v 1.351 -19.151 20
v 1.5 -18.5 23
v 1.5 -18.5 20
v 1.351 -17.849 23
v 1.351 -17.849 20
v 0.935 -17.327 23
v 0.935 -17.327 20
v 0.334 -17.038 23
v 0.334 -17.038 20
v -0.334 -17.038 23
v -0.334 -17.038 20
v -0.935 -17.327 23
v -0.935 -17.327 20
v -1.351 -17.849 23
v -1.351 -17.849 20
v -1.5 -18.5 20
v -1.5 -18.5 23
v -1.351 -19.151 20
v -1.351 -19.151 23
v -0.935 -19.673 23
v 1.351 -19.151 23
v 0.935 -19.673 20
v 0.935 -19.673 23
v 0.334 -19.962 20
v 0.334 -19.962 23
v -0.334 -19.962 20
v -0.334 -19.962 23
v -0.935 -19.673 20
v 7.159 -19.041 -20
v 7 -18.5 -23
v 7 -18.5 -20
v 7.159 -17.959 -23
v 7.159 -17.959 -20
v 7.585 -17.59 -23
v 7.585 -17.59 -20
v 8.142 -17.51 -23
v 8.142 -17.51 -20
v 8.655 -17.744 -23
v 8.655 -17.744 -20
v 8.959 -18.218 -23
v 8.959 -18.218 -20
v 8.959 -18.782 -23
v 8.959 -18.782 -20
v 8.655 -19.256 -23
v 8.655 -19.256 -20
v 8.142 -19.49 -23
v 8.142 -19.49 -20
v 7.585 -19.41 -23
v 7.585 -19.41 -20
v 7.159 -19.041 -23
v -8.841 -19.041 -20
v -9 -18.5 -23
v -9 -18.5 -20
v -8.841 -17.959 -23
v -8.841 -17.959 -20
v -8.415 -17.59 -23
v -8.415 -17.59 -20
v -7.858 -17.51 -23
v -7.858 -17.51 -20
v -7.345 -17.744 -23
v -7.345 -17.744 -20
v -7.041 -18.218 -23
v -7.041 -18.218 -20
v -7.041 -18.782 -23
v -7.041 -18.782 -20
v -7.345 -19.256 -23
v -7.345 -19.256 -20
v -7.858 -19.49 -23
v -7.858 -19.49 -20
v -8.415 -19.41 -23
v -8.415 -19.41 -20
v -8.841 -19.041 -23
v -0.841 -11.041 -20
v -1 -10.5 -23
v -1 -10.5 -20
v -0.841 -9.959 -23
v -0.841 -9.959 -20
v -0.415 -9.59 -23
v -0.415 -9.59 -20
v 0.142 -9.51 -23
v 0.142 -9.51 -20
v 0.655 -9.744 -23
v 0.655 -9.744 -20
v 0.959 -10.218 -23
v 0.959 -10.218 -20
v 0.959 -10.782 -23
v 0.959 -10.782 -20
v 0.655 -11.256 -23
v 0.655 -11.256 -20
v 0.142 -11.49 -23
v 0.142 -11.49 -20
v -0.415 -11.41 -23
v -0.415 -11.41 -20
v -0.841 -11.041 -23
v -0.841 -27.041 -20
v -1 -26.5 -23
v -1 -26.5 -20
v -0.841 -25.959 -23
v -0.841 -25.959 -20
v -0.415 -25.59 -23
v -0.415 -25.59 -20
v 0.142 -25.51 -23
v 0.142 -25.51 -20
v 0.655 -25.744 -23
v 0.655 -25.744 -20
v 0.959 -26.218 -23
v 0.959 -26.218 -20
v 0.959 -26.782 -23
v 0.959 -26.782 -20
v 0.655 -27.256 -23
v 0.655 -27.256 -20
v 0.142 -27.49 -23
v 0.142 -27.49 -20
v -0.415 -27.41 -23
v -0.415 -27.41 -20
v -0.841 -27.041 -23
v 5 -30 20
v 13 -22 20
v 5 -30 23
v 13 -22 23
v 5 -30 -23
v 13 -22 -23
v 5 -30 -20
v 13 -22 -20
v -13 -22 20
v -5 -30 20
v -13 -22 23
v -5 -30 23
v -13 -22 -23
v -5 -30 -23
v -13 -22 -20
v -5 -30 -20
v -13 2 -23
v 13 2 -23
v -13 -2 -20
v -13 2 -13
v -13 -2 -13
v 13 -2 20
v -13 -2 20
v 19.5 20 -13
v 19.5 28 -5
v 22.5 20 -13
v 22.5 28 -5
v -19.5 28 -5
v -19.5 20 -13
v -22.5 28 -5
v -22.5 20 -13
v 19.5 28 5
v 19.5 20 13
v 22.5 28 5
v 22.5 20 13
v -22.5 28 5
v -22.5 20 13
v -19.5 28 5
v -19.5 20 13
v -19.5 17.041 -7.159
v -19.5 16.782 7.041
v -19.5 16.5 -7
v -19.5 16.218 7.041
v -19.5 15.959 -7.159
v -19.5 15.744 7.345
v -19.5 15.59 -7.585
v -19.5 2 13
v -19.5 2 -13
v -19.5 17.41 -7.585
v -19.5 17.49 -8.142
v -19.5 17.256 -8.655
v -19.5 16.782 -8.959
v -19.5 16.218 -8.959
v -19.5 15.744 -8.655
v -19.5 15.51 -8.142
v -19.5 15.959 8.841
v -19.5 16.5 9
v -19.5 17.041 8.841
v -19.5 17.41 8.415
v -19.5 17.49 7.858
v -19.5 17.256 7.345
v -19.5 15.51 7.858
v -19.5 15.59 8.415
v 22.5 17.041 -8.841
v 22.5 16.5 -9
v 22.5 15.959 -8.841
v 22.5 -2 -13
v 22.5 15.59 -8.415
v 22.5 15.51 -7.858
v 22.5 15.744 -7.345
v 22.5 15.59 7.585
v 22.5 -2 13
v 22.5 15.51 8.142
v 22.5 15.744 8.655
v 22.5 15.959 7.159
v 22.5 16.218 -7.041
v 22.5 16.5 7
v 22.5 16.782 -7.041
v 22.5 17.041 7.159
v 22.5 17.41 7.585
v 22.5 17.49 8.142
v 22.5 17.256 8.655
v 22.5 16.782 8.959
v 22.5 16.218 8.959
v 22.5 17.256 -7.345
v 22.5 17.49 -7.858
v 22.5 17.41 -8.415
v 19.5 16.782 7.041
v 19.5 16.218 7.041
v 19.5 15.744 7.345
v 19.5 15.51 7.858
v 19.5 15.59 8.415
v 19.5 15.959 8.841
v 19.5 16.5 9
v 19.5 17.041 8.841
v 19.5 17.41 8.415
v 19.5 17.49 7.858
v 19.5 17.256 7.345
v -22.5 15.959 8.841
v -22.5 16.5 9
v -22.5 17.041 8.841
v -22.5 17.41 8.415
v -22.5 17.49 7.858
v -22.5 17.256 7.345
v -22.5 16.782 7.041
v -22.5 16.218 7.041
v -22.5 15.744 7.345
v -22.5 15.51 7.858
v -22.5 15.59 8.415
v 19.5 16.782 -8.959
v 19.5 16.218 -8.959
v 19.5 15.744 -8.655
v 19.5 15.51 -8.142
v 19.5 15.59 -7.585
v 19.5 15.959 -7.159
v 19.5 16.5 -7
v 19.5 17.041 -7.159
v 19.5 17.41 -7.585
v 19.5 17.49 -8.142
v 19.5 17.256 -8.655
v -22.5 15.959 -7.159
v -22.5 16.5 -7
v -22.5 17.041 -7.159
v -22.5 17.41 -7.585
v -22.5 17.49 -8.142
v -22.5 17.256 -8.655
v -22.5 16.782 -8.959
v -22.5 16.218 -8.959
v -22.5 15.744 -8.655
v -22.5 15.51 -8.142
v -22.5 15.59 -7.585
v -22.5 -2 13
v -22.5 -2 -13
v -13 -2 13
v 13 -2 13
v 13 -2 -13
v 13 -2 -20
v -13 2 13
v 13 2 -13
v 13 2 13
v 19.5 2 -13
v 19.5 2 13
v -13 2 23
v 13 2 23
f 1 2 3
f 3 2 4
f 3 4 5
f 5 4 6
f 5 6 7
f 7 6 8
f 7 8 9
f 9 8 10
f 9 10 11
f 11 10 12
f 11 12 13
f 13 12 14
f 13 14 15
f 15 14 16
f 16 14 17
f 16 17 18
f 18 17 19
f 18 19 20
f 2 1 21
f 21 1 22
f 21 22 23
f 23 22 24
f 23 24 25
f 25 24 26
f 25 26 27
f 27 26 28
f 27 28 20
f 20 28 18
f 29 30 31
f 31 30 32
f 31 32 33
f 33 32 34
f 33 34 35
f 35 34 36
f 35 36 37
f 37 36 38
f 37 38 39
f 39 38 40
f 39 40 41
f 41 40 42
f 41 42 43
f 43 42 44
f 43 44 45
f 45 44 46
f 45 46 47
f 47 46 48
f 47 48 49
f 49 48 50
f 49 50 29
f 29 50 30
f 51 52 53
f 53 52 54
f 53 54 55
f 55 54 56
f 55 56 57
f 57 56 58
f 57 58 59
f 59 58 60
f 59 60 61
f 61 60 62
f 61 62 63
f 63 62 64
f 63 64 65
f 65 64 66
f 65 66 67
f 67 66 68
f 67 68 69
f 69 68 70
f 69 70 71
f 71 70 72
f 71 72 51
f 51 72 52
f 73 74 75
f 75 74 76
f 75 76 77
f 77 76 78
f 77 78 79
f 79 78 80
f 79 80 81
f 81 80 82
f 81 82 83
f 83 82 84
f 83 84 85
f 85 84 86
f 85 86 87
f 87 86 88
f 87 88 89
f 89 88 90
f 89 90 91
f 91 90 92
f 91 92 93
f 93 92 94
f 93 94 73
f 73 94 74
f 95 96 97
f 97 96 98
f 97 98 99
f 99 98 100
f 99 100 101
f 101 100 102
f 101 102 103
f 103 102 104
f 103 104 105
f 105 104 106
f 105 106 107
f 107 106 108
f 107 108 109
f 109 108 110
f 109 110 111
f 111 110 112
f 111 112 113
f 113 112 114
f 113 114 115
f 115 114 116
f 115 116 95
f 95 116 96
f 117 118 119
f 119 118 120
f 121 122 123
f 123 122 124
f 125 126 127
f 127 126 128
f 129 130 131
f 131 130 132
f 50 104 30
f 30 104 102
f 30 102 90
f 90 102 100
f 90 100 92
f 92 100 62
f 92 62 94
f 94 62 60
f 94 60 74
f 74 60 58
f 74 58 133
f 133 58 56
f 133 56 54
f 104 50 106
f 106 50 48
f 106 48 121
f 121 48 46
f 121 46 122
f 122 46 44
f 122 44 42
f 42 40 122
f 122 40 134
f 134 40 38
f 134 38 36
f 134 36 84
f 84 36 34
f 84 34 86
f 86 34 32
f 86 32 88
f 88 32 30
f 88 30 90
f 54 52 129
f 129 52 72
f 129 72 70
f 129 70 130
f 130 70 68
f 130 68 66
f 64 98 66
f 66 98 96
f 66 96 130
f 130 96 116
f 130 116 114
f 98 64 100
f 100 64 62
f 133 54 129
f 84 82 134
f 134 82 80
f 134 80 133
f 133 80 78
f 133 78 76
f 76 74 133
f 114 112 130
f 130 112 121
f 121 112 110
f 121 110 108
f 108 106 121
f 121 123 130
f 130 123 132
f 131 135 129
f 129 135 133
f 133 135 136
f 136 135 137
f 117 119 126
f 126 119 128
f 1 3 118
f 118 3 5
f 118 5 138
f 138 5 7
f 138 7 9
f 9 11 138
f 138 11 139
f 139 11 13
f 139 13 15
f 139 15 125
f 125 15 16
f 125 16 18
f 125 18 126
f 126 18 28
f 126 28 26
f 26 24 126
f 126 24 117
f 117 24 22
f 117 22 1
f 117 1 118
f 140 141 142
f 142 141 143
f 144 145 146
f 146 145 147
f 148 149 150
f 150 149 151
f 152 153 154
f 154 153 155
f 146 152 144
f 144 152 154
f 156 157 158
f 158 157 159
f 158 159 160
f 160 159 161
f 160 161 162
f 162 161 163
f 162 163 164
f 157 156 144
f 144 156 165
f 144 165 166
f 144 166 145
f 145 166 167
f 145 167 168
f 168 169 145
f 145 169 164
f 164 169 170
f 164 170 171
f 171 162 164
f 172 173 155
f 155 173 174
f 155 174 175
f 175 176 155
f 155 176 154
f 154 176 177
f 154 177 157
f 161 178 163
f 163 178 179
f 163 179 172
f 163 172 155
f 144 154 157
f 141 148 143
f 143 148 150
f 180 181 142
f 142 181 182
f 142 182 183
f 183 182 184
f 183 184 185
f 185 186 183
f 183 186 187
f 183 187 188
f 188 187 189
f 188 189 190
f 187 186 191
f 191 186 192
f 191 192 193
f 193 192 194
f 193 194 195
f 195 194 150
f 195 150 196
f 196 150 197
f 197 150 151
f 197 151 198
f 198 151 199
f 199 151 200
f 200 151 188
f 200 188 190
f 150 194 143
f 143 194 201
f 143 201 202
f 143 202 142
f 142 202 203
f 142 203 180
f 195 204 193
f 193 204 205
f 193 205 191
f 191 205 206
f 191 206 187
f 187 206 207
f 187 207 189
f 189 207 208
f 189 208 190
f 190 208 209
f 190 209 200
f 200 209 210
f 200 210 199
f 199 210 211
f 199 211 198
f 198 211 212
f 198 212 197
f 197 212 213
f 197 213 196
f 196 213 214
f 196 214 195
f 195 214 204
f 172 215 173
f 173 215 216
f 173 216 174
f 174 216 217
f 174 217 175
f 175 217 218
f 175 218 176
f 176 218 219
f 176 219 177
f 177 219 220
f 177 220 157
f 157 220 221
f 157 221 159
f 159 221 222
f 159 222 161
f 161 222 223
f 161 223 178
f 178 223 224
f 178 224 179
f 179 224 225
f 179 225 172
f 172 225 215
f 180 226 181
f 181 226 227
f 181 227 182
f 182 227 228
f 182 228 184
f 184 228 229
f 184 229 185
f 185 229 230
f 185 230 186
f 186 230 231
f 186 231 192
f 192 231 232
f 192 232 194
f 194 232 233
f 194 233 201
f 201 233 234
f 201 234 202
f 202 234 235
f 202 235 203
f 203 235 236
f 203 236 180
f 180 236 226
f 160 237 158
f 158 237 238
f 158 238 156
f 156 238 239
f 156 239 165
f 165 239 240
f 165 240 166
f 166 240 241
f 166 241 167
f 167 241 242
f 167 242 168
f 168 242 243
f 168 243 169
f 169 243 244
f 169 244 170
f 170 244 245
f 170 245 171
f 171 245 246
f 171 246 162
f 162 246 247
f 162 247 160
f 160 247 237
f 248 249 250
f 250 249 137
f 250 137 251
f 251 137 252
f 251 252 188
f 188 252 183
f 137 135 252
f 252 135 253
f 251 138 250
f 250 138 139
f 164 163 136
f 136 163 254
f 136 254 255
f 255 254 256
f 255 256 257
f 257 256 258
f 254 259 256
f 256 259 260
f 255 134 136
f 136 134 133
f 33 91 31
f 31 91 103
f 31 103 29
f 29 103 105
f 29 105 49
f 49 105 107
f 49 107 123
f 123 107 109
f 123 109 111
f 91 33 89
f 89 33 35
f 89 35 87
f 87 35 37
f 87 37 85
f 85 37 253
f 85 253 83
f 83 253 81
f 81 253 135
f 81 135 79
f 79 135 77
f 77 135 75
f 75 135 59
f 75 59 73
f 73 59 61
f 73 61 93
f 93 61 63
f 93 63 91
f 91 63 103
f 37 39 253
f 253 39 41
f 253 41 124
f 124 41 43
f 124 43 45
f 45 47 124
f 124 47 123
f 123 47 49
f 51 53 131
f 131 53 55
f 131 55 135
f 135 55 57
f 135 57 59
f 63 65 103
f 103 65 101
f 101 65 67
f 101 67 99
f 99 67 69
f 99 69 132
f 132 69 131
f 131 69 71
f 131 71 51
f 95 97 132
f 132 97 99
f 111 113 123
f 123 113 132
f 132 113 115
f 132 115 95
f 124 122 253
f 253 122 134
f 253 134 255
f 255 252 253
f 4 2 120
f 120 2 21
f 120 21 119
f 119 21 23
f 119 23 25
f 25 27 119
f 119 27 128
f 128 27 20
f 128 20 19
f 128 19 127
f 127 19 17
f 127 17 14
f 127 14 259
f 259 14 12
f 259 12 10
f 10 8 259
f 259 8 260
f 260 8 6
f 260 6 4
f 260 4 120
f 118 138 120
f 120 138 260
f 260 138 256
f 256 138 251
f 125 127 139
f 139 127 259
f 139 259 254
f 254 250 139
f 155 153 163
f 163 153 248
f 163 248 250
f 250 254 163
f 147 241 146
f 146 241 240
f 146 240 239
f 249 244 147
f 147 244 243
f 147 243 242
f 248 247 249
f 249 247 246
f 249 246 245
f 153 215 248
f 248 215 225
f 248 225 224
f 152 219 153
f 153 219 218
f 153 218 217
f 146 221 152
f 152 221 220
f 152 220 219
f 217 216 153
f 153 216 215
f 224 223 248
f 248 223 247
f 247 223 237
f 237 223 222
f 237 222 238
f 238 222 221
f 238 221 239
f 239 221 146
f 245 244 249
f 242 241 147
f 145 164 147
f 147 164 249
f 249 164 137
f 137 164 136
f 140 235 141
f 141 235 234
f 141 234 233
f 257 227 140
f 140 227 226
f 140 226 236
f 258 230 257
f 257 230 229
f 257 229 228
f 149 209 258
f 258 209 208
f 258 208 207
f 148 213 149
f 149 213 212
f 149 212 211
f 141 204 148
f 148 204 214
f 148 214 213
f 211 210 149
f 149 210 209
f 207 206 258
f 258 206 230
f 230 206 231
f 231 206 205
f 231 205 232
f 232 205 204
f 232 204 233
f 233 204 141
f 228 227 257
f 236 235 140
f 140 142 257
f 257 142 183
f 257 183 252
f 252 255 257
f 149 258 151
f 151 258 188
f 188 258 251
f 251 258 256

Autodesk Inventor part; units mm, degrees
ref_plane "YZ Plane" through (0, 0, 0) normal (1, 0, 0) x (0, 1, 0)
ref_plane "XZ Plane" through (0, 0, 0) normal (0, 1, 0) x (-1, 0, 0)
ref_plane "XY Plane" through (0, 0, 0) normal (0, 0, 1) x (1, 0, 0)
sketch "Sketch1" plane through (0, 0, 0) normal (0, 1, 0) x (-1, 0, 0)
  line L0 (22.5, 13) -> (-22.5, 13)
  line L1 (-22.5, 13) -> (-22.5, -13)
  line L2 (-22.5, -13) -> (22.5, -13)
  line L3 (22.5, -13) -> (22.5, 13)
  line L4 (13, 23) -> (-13, 23)
  line L5 (-13, 23) -> (-13, -23)
  line L6 (-13, -23) -> (13, -23)
  line L7 (13, -23) -> (13, 23)
  line L8 (13, -23) -> (-13, 23) construction
  line L9 (13, 23) -> (-13, -23) construction
  line L10 (22.5, -13) -> (-22.5, 13) construction
  line L11 (22.5, 13) -> (-22.5, -13) construction
  line L12 (13, -23) -> (-13, -23)
  line L13 (-13, -23) -> (-13, -20)
  line L14 (-13, -20) -> (13, -20)
  line L15 (13, -20) -> (13, -23)
  line L16 (13, 23) -> (-13, 23)
  line L17 (-13, 23) -> (-13, 20)
  line L18 (-13, 20) -> (13, 20)
  line L19 (13, 20) -> (13, 23)
  line L20 (22.5, 13) -> (19.5, 13)
  line L21 (19.5, 13) -> (19.5, -13)
  line L22 (19.5, -13) -> (22.5, -13)
  line L23 (22.5, -13) -> (22.5, 13)
  line L24 (-22.5, 13) -> (-19.5, 13)
  line L25 (-19.5, 13) -> (-19.5, -13)
  line L26 (-19.5, -13) -> (-22.5, -13)
  line L27 (-22.5, -13) -> (-22.5, 13)
  point P0 (0, 0)
  point P1 (0, 0)
  point P2 (0, 0)
  point P3 (-19.5, 13)
  point P4 (13, 20)
  point P5 (13, 13)
  point P6 (-13, 13)
  point P7 (-13, -13)
  point P8 (13, -13)
  dimension "d0" = 45
  dimension "d1" = 46
  dimension "d2" = 26
  dimension "d3" = 26
  dimension "d4" = 3
  dimension "d5" = 3
  dimension "d6" = 3
  dimension "d7" = 3
extrude "Extrusion1" add sketch "Sketch1" along normal blind 28 contours L3 L2 L21 L0 | L25 L2 L1 L0
extrude "Extrusion2" add sketch "Sketch1" against normal blind 30 contours L18 L5 L4 L7 | L7 L6 L5 L14
extrude "Extrusion3" add sketch "Sketch1" along normal mid plane 4 contours L21 L2 L7 L0 | L7 L2 L5 L0 | L0 L5 L18 L7 | L5 L2 L25 L0 | L7 L14 L5 L2
extrude "Extrusion4" add sketch "Sketch1" along normal blind 2 contours L18 L5 L4 L7 | L7 L6 L5 L14
extrude "Extrusion5" add sketch "Sketch1" against normal blind 2 contours L3 L2 L21 L0 | L25 L2 L1 L0
sketch "Sketch2" plane through (22.5, 28, 13) normal (1, 0, 0) x (0, 0, -1)
  line L0 (0, 0) -> (26, 0) projected
  line L1 (13, 0) -> (13, -11.5)
  circle A0 centre (21, -11.5) radius 1
  circle A1 centre (5, -11.5) radius 1
  point P0 (13, -28)
  dimension "d18" = 11.5
  dimension "d73" = 2
  dimension "d74" = 8
extrude "Extrusion6" cut sketch "Sketch2" against normal blind 60
sketch "Sketch6" plane through (22.5, 28, 13) normal (1, 0, 0) x (0, 0, -1)
  line L0 (0, 0) -> (26, 0) projected
  line L1 (8, 0) -> (0, -8)
  line L2 (0, -30) -> (0, 0) projected
  line L3 (18, 0) -> (26, -8)
  line L4 (26, -26) -> (26, 0) projected
  point P0 (13, -28)
  dimension "d43" = 8
  dimension "d44" = 8
  dimension "d45" = 8
  dimension "d46" = 8
extrude "Extrusion9" cut sketch "Sketch6" against normal blind 50
sketch "Sketch7" plane through (-13, -30, 23) normal (0, 0, 1) x (1, 0, 0)
  line L0 (0, 28) -> (0, 0) projected
  line L1 (0, 8) -> (8, 0)
  line L2 (0, 0) -> (26, 0) projected
  line L3 (26, 0) -> (26, 8)
  line L4 (26, 8) -> (18, 0)
  point P0 (13, 30)
  dimension "d49" = 8
  dimension "d50" = 8
  dimension "d51" = 8
  dimension "d52" = 8
extrude "Extrusion10" cut sketch "Sketch7" against normal blind 50
sketch "Sketch9" plane through (13, 2, -23) normal (0, 0, -1) x (-1, 0, 0)
  line L0 (18, -32) -> (8, -32) projected
  line L1 (13, -32) -> (13, -20.5)
  line L2 (13, -32) -> (24.5, -32) construction
  circle A0 centre (13, -12.5) radius 1
  circle A1 centre (5, -20.5) radius 1
  circle A2 centre (13, -28.5) radius 1
  circle A3 centre (21, -20.5) radius 1
  point P0 (13, -2)
  dimension "d59" = 11.5
  dimension "d60" = 90
  dimension "d61" = 2
  dimension "d62" = 8
  dimension "d65" = 360
extrude "Extrusion12" cut sketch "Sketch9" against normal blind 3
sketch "Sketch10" plane through (-13, 2, 23) normal (0, 0, 1) x (1, 0, 0)
  line L0 (18, -32) -> (8, -32) projected
  line L1 (13, -32) -> (13, -20.5)
  circle A0 centre (13, -20.5) radius 1.5
  point P0 (13, -2)
  dimension "d69" = 11.5
  dimension "d70" = 3
extrude "Extrusion13" cut sketch "Sketch10" against normal blind 3
properties part number "first_junction"
